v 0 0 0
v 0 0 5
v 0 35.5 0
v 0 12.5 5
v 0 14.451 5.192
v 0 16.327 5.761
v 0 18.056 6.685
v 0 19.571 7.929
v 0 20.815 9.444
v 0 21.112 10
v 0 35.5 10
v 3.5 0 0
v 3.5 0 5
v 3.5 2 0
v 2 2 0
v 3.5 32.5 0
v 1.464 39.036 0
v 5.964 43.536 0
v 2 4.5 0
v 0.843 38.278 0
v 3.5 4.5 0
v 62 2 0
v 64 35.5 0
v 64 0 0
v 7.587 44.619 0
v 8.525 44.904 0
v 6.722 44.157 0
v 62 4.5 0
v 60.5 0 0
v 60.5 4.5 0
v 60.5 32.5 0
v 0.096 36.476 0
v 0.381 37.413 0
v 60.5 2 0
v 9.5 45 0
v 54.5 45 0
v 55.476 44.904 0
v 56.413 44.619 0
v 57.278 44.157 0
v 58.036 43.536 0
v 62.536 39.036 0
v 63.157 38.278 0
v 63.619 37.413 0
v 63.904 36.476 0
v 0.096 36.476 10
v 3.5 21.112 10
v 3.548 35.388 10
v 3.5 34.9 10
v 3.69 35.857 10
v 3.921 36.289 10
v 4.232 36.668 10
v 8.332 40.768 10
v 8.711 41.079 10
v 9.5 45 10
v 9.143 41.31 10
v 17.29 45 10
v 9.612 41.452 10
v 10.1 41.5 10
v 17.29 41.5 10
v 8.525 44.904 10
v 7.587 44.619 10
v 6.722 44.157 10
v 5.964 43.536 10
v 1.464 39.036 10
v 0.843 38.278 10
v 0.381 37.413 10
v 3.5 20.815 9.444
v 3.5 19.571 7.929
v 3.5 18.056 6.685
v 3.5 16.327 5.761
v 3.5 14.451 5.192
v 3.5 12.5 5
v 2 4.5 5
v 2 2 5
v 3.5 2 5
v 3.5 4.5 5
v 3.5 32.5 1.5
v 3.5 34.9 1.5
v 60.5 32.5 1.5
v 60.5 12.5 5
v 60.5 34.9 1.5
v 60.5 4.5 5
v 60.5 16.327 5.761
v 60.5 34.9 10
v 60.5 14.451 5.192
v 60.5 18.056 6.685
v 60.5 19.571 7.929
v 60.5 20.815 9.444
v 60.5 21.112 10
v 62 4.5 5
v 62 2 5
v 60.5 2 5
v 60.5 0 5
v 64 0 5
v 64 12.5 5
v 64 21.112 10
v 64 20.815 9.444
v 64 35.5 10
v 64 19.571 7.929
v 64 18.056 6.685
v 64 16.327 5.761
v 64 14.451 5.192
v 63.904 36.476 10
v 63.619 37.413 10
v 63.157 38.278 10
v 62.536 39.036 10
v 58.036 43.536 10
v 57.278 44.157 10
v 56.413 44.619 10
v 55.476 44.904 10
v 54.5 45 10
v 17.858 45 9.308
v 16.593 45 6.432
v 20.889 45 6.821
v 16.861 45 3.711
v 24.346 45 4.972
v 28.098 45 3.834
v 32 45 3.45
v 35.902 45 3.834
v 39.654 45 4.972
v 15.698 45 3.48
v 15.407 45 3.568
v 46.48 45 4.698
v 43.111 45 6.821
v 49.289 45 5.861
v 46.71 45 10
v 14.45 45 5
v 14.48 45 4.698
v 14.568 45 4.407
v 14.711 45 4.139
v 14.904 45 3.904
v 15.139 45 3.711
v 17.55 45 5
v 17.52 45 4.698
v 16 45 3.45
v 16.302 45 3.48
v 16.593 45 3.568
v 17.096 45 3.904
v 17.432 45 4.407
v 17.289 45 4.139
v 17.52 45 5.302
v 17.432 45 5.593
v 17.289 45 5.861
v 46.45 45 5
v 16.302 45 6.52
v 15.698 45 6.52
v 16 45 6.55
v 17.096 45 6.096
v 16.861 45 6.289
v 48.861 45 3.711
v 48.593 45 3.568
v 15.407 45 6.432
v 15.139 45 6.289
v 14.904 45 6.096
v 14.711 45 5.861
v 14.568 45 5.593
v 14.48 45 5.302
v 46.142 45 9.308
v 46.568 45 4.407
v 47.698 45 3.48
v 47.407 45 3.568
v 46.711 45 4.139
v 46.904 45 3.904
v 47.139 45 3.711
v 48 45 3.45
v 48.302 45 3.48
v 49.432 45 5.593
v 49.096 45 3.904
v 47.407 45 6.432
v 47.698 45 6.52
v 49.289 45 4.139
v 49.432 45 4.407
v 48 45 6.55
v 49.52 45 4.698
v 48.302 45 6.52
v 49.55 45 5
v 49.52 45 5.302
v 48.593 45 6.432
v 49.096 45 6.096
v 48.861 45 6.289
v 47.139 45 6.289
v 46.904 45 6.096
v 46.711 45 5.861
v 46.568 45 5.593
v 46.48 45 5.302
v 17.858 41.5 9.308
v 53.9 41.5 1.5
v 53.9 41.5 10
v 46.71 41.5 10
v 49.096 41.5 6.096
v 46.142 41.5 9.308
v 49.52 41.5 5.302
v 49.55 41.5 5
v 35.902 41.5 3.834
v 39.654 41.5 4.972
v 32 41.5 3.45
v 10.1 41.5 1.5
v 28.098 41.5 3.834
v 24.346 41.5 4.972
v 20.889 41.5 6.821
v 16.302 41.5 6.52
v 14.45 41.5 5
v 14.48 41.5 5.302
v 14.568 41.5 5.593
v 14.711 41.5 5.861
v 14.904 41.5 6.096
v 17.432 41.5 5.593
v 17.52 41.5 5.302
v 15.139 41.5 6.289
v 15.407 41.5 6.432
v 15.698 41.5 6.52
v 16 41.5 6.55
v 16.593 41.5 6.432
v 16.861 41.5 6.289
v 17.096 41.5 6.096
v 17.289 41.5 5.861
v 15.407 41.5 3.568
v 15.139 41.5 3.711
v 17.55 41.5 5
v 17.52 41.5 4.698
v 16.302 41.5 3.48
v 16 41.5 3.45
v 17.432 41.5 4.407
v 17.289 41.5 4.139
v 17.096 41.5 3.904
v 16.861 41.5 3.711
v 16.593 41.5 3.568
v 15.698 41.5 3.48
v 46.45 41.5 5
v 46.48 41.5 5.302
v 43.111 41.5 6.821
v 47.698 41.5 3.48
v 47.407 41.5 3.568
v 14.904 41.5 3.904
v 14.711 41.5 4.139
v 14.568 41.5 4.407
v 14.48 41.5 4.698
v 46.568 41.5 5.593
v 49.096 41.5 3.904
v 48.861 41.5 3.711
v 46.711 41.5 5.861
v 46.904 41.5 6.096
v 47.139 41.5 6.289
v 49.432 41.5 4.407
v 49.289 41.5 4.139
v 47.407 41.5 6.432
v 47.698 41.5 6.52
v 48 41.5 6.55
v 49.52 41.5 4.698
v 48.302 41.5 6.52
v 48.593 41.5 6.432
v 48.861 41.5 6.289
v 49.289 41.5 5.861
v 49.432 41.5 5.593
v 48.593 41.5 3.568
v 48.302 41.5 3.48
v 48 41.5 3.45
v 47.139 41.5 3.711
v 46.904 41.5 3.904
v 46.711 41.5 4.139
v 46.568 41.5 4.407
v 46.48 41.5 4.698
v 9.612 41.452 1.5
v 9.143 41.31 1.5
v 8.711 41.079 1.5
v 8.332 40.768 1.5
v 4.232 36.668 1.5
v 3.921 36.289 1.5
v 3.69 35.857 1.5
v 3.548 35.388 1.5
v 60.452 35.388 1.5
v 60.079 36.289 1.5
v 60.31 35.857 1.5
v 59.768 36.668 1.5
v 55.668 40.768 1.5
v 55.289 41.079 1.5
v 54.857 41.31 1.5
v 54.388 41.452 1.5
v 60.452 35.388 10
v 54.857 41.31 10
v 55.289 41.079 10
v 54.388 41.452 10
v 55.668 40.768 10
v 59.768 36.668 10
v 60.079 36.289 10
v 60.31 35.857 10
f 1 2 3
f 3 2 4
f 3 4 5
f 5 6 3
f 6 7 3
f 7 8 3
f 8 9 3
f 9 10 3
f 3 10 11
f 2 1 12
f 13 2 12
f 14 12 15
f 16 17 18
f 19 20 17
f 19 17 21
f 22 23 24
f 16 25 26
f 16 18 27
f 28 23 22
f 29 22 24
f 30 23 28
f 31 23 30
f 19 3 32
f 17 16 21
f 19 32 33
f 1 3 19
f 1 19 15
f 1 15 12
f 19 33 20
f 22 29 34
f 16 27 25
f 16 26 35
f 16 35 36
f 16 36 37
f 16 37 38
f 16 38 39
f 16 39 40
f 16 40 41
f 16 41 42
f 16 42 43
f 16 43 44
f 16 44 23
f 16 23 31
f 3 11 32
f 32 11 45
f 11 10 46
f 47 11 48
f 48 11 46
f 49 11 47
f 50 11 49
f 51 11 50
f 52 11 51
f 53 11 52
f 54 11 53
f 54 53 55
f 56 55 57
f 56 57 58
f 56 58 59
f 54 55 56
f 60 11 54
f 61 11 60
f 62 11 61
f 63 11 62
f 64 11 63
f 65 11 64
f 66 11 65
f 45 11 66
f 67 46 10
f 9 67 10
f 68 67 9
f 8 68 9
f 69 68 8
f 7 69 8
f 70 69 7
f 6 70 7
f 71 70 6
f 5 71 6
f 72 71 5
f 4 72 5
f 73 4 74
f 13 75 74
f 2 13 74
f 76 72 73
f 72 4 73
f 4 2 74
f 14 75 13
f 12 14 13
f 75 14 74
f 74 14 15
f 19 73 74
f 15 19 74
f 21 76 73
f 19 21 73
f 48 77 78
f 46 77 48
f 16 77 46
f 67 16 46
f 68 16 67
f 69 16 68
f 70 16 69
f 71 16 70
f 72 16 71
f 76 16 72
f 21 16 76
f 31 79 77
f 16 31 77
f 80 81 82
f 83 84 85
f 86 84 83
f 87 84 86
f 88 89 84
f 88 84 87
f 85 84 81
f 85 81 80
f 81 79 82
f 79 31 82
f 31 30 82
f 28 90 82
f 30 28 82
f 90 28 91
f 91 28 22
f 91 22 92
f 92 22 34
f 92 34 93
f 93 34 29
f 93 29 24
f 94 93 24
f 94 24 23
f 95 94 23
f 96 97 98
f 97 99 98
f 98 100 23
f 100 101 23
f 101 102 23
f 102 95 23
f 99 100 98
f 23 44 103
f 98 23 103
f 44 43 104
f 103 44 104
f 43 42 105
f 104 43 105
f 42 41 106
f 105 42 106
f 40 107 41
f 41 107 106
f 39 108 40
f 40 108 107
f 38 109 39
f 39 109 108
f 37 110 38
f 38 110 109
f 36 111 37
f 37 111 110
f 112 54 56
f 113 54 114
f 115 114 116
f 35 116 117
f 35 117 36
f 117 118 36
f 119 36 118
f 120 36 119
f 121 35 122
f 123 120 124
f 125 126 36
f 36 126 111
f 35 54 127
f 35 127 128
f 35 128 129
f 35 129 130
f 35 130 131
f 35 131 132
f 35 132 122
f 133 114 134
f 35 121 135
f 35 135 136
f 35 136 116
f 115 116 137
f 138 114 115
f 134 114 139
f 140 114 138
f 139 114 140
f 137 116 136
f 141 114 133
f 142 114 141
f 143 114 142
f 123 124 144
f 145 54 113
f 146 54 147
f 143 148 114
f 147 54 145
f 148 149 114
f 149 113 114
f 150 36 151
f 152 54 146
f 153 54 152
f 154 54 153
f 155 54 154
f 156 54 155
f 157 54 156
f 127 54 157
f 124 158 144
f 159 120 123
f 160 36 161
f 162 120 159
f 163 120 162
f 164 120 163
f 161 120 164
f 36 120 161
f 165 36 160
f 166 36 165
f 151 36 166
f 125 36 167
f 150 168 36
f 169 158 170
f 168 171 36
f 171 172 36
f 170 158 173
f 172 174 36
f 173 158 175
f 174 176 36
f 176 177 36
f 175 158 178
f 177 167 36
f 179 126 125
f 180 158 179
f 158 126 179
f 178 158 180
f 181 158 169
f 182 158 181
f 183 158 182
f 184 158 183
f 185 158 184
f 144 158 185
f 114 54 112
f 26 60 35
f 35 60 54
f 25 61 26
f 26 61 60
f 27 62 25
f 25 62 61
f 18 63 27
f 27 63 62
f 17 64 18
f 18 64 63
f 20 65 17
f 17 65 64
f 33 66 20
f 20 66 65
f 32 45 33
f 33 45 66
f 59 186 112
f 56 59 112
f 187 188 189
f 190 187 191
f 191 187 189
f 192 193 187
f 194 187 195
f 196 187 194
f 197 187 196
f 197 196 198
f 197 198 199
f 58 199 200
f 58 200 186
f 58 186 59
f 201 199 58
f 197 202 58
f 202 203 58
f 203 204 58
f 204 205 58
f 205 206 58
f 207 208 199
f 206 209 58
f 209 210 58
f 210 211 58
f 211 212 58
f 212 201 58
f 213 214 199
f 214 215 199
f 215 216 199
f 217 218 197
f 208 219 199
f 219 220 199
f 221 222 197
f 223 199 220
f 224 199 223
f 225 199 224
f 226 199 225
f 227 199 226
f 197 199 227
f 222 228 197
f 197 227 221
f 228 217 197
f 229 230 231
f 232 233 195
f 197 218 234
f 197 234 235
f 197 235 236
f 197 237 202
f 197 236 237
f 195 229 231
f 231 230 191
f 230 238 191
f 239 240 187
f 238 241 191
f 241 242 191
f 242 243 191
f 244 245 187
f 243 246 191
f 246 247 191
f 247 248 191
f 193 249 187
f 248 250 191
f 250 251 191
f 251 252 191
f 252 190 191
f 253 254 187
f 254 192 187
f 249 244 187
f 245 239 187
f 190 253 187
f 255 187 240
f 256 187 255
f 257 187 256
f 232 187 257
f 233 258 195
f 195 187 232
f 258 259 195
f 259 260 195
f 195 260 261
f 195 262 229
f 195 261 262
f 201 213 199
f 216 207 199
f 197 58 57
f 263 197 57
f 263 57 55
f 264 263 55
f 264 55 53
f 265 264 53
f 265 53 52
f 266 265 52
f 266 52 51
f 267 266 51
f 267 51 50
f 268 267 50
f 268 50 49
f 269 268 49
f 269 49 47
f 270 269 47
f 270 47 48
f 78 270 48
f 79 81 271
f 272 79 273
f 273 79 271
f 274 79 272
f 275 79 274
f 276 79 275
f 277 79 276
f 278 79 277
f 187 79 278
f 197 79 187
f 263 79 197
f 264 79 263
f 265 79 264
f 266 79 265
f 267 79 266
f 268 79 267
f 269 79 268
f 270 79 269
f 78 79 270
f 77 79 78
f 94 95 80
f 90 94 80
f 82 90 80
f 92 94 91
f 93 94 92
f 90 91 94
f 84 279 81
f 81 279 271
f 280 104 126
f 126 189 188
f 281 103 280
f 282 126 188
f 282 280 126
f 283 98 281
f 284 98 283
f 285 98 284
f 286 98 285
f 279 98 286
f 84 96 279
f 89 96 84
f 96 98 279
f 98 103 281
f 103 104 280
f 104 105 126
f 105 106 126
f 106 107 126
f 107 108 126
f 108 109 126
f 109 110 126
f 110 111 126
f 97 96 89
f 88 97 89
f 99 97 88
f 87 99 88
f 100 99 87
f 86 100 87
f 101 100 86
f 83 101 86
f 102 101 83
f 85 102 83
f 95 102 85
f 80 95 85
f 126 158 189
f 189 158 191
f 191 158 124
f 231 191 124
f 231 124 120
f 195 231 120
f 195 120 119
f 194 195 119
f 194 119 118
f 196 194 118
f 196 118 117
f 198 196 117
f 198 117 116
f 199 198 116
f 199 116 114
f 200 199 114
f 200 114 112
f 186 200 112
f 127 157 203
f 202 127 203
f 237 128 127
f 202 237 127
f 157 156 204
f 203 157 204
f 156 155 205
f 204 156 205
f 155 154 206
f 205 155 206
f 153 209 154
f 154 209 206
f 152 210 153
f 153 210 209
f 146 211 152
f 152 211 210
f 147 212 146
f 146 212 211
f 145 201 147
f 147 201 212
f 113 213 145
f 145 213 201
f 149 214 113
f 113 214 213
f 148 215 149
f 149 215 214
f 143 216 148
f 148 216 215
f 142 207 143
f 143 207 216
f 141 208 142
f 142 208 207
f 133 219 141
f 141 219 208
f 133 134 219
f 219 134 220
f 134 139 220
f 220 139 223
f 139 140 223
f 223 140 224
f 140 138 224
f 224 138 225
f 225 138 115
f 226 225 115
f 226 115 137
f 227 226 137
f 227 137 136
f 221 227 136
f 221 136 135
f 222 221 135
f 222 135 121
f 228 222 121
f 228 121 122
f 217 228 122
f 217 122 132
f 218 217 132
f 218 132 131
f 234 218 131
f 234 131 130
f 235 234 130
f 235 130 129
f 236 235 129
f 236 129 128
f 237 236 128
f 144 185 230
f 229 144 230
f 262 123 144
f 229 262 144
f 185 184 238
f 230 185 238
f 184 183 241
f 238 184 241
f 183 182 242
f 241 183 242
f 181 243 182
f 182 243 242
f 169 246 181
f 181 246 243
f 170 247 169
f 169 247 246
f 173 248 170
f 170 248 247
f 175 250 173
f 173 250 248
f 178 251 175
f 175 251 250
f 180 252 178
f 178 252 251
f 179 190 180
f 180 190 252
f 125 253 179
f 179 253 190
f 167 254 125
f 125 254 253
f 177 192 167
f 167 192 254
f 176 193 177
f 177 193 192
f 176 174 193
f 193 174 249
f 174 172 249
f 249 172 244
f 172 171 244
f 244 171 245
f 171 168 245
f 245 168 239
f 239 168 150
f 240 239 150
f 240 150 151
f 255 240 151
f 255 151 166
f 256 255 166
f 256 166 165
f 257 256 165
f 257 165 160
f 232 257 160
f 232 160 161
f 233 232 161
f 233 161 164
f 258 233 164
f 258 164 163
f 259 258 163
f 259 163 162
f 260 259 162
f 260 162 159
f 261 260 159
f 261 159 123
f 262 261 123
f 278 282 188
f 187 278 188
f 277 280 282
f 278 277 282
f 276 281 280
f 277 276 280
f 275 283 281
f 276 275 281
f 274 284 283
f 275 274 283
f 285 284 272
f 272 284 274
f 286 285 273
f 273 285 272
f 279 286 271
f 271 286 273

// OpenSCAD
// RAMPS Fan Mount
// From: http://www.thingiverse.com/thing:49235
// Licence: CC BY-SA 3.0, http://creativecommons.org/licenses/by-sa/3.0/
// Author: Dominik Scholz <schlotzz@schlotzz.com> and contributors
// visit: http://www.schlotzz.com

module ramps_fan_mount_cutoff_cube(width, height, depth, cutoff = 5, radius = 5)
{
	union()
	{
		cube([width, height - cutoff - radius, depth]);

		hull()
		{
			for (x = [radius, width - radius])
				translate([x, height - cutoff - radius, 0])
					cylinder(r = radius, h = depth);
	
			for (x = [radius + cutoff, width - radius - cutoff])
				translate([x, height - radius, 0])
					cylinder(r = radius, h = depth);
		}
	}
}

module ramps_fan_mount(width = 64, height = 45, depth = 10, fanDia = 40, fanHoleDia = 3.1, fanHoleDist = 32, grooveDepth = 1.5, grooveHeight = 2.5, thickness = 3.5, $fn = 16)
{

	difference()
	{
		// base corpus
		ramps_fan_mount_cutoff_cube(width, height, depth, cutoff = 4.5, radius = 5);

		// hollow, leave side air guide
		translate([thickness, -thickness, 1.5])
			ramps_fan_mount_cutoff_cube(width - 2 * thickness, height, depth + 2, cutoff = 4.1, radius = 2.5);

		// remove unneeded air guide
		translate([thickness, -1, -1])
			cube([width - 2 * thickness, height - thickness - 8, depth + 2]);

		// add grooves
		translate([thickness - grooveDepth, 2, -1])
			cube([width - 2 * thickness + grooveDepth * 2, grooveHeight, depth + 2]);
		
		// fan mounting holes
		for (x = [(width - fanHoleDist) / 2, (width + fanHoleDist) / 2])
			translate([x, height + 1, depth / 2])
				rotate([90, 0, 0])
					cylinder(r = fanHoleDia / 2, h = thickness + 2);

		// fan hole
		translate([width / 2, height + 1, depth / 2 + fanDia / 2 - fanHoleDia / 2])
			rotate([90, 0, 0])
				cylinder(r = fanDia / 2, h = thickness + 2);

		// smaller legs
		translate([-1, height / 2 - depth, depth * 1.5])
			rotate([0, 90, 0])
				cylinder(r = depth, h = width + 2);
		translate([-1, -1, depth / 2])
			cube([width + 2, height / 2 - depth + 1, depth / 2 + 1]);

	}
}

ramps_fan_mount($fn = 32);
